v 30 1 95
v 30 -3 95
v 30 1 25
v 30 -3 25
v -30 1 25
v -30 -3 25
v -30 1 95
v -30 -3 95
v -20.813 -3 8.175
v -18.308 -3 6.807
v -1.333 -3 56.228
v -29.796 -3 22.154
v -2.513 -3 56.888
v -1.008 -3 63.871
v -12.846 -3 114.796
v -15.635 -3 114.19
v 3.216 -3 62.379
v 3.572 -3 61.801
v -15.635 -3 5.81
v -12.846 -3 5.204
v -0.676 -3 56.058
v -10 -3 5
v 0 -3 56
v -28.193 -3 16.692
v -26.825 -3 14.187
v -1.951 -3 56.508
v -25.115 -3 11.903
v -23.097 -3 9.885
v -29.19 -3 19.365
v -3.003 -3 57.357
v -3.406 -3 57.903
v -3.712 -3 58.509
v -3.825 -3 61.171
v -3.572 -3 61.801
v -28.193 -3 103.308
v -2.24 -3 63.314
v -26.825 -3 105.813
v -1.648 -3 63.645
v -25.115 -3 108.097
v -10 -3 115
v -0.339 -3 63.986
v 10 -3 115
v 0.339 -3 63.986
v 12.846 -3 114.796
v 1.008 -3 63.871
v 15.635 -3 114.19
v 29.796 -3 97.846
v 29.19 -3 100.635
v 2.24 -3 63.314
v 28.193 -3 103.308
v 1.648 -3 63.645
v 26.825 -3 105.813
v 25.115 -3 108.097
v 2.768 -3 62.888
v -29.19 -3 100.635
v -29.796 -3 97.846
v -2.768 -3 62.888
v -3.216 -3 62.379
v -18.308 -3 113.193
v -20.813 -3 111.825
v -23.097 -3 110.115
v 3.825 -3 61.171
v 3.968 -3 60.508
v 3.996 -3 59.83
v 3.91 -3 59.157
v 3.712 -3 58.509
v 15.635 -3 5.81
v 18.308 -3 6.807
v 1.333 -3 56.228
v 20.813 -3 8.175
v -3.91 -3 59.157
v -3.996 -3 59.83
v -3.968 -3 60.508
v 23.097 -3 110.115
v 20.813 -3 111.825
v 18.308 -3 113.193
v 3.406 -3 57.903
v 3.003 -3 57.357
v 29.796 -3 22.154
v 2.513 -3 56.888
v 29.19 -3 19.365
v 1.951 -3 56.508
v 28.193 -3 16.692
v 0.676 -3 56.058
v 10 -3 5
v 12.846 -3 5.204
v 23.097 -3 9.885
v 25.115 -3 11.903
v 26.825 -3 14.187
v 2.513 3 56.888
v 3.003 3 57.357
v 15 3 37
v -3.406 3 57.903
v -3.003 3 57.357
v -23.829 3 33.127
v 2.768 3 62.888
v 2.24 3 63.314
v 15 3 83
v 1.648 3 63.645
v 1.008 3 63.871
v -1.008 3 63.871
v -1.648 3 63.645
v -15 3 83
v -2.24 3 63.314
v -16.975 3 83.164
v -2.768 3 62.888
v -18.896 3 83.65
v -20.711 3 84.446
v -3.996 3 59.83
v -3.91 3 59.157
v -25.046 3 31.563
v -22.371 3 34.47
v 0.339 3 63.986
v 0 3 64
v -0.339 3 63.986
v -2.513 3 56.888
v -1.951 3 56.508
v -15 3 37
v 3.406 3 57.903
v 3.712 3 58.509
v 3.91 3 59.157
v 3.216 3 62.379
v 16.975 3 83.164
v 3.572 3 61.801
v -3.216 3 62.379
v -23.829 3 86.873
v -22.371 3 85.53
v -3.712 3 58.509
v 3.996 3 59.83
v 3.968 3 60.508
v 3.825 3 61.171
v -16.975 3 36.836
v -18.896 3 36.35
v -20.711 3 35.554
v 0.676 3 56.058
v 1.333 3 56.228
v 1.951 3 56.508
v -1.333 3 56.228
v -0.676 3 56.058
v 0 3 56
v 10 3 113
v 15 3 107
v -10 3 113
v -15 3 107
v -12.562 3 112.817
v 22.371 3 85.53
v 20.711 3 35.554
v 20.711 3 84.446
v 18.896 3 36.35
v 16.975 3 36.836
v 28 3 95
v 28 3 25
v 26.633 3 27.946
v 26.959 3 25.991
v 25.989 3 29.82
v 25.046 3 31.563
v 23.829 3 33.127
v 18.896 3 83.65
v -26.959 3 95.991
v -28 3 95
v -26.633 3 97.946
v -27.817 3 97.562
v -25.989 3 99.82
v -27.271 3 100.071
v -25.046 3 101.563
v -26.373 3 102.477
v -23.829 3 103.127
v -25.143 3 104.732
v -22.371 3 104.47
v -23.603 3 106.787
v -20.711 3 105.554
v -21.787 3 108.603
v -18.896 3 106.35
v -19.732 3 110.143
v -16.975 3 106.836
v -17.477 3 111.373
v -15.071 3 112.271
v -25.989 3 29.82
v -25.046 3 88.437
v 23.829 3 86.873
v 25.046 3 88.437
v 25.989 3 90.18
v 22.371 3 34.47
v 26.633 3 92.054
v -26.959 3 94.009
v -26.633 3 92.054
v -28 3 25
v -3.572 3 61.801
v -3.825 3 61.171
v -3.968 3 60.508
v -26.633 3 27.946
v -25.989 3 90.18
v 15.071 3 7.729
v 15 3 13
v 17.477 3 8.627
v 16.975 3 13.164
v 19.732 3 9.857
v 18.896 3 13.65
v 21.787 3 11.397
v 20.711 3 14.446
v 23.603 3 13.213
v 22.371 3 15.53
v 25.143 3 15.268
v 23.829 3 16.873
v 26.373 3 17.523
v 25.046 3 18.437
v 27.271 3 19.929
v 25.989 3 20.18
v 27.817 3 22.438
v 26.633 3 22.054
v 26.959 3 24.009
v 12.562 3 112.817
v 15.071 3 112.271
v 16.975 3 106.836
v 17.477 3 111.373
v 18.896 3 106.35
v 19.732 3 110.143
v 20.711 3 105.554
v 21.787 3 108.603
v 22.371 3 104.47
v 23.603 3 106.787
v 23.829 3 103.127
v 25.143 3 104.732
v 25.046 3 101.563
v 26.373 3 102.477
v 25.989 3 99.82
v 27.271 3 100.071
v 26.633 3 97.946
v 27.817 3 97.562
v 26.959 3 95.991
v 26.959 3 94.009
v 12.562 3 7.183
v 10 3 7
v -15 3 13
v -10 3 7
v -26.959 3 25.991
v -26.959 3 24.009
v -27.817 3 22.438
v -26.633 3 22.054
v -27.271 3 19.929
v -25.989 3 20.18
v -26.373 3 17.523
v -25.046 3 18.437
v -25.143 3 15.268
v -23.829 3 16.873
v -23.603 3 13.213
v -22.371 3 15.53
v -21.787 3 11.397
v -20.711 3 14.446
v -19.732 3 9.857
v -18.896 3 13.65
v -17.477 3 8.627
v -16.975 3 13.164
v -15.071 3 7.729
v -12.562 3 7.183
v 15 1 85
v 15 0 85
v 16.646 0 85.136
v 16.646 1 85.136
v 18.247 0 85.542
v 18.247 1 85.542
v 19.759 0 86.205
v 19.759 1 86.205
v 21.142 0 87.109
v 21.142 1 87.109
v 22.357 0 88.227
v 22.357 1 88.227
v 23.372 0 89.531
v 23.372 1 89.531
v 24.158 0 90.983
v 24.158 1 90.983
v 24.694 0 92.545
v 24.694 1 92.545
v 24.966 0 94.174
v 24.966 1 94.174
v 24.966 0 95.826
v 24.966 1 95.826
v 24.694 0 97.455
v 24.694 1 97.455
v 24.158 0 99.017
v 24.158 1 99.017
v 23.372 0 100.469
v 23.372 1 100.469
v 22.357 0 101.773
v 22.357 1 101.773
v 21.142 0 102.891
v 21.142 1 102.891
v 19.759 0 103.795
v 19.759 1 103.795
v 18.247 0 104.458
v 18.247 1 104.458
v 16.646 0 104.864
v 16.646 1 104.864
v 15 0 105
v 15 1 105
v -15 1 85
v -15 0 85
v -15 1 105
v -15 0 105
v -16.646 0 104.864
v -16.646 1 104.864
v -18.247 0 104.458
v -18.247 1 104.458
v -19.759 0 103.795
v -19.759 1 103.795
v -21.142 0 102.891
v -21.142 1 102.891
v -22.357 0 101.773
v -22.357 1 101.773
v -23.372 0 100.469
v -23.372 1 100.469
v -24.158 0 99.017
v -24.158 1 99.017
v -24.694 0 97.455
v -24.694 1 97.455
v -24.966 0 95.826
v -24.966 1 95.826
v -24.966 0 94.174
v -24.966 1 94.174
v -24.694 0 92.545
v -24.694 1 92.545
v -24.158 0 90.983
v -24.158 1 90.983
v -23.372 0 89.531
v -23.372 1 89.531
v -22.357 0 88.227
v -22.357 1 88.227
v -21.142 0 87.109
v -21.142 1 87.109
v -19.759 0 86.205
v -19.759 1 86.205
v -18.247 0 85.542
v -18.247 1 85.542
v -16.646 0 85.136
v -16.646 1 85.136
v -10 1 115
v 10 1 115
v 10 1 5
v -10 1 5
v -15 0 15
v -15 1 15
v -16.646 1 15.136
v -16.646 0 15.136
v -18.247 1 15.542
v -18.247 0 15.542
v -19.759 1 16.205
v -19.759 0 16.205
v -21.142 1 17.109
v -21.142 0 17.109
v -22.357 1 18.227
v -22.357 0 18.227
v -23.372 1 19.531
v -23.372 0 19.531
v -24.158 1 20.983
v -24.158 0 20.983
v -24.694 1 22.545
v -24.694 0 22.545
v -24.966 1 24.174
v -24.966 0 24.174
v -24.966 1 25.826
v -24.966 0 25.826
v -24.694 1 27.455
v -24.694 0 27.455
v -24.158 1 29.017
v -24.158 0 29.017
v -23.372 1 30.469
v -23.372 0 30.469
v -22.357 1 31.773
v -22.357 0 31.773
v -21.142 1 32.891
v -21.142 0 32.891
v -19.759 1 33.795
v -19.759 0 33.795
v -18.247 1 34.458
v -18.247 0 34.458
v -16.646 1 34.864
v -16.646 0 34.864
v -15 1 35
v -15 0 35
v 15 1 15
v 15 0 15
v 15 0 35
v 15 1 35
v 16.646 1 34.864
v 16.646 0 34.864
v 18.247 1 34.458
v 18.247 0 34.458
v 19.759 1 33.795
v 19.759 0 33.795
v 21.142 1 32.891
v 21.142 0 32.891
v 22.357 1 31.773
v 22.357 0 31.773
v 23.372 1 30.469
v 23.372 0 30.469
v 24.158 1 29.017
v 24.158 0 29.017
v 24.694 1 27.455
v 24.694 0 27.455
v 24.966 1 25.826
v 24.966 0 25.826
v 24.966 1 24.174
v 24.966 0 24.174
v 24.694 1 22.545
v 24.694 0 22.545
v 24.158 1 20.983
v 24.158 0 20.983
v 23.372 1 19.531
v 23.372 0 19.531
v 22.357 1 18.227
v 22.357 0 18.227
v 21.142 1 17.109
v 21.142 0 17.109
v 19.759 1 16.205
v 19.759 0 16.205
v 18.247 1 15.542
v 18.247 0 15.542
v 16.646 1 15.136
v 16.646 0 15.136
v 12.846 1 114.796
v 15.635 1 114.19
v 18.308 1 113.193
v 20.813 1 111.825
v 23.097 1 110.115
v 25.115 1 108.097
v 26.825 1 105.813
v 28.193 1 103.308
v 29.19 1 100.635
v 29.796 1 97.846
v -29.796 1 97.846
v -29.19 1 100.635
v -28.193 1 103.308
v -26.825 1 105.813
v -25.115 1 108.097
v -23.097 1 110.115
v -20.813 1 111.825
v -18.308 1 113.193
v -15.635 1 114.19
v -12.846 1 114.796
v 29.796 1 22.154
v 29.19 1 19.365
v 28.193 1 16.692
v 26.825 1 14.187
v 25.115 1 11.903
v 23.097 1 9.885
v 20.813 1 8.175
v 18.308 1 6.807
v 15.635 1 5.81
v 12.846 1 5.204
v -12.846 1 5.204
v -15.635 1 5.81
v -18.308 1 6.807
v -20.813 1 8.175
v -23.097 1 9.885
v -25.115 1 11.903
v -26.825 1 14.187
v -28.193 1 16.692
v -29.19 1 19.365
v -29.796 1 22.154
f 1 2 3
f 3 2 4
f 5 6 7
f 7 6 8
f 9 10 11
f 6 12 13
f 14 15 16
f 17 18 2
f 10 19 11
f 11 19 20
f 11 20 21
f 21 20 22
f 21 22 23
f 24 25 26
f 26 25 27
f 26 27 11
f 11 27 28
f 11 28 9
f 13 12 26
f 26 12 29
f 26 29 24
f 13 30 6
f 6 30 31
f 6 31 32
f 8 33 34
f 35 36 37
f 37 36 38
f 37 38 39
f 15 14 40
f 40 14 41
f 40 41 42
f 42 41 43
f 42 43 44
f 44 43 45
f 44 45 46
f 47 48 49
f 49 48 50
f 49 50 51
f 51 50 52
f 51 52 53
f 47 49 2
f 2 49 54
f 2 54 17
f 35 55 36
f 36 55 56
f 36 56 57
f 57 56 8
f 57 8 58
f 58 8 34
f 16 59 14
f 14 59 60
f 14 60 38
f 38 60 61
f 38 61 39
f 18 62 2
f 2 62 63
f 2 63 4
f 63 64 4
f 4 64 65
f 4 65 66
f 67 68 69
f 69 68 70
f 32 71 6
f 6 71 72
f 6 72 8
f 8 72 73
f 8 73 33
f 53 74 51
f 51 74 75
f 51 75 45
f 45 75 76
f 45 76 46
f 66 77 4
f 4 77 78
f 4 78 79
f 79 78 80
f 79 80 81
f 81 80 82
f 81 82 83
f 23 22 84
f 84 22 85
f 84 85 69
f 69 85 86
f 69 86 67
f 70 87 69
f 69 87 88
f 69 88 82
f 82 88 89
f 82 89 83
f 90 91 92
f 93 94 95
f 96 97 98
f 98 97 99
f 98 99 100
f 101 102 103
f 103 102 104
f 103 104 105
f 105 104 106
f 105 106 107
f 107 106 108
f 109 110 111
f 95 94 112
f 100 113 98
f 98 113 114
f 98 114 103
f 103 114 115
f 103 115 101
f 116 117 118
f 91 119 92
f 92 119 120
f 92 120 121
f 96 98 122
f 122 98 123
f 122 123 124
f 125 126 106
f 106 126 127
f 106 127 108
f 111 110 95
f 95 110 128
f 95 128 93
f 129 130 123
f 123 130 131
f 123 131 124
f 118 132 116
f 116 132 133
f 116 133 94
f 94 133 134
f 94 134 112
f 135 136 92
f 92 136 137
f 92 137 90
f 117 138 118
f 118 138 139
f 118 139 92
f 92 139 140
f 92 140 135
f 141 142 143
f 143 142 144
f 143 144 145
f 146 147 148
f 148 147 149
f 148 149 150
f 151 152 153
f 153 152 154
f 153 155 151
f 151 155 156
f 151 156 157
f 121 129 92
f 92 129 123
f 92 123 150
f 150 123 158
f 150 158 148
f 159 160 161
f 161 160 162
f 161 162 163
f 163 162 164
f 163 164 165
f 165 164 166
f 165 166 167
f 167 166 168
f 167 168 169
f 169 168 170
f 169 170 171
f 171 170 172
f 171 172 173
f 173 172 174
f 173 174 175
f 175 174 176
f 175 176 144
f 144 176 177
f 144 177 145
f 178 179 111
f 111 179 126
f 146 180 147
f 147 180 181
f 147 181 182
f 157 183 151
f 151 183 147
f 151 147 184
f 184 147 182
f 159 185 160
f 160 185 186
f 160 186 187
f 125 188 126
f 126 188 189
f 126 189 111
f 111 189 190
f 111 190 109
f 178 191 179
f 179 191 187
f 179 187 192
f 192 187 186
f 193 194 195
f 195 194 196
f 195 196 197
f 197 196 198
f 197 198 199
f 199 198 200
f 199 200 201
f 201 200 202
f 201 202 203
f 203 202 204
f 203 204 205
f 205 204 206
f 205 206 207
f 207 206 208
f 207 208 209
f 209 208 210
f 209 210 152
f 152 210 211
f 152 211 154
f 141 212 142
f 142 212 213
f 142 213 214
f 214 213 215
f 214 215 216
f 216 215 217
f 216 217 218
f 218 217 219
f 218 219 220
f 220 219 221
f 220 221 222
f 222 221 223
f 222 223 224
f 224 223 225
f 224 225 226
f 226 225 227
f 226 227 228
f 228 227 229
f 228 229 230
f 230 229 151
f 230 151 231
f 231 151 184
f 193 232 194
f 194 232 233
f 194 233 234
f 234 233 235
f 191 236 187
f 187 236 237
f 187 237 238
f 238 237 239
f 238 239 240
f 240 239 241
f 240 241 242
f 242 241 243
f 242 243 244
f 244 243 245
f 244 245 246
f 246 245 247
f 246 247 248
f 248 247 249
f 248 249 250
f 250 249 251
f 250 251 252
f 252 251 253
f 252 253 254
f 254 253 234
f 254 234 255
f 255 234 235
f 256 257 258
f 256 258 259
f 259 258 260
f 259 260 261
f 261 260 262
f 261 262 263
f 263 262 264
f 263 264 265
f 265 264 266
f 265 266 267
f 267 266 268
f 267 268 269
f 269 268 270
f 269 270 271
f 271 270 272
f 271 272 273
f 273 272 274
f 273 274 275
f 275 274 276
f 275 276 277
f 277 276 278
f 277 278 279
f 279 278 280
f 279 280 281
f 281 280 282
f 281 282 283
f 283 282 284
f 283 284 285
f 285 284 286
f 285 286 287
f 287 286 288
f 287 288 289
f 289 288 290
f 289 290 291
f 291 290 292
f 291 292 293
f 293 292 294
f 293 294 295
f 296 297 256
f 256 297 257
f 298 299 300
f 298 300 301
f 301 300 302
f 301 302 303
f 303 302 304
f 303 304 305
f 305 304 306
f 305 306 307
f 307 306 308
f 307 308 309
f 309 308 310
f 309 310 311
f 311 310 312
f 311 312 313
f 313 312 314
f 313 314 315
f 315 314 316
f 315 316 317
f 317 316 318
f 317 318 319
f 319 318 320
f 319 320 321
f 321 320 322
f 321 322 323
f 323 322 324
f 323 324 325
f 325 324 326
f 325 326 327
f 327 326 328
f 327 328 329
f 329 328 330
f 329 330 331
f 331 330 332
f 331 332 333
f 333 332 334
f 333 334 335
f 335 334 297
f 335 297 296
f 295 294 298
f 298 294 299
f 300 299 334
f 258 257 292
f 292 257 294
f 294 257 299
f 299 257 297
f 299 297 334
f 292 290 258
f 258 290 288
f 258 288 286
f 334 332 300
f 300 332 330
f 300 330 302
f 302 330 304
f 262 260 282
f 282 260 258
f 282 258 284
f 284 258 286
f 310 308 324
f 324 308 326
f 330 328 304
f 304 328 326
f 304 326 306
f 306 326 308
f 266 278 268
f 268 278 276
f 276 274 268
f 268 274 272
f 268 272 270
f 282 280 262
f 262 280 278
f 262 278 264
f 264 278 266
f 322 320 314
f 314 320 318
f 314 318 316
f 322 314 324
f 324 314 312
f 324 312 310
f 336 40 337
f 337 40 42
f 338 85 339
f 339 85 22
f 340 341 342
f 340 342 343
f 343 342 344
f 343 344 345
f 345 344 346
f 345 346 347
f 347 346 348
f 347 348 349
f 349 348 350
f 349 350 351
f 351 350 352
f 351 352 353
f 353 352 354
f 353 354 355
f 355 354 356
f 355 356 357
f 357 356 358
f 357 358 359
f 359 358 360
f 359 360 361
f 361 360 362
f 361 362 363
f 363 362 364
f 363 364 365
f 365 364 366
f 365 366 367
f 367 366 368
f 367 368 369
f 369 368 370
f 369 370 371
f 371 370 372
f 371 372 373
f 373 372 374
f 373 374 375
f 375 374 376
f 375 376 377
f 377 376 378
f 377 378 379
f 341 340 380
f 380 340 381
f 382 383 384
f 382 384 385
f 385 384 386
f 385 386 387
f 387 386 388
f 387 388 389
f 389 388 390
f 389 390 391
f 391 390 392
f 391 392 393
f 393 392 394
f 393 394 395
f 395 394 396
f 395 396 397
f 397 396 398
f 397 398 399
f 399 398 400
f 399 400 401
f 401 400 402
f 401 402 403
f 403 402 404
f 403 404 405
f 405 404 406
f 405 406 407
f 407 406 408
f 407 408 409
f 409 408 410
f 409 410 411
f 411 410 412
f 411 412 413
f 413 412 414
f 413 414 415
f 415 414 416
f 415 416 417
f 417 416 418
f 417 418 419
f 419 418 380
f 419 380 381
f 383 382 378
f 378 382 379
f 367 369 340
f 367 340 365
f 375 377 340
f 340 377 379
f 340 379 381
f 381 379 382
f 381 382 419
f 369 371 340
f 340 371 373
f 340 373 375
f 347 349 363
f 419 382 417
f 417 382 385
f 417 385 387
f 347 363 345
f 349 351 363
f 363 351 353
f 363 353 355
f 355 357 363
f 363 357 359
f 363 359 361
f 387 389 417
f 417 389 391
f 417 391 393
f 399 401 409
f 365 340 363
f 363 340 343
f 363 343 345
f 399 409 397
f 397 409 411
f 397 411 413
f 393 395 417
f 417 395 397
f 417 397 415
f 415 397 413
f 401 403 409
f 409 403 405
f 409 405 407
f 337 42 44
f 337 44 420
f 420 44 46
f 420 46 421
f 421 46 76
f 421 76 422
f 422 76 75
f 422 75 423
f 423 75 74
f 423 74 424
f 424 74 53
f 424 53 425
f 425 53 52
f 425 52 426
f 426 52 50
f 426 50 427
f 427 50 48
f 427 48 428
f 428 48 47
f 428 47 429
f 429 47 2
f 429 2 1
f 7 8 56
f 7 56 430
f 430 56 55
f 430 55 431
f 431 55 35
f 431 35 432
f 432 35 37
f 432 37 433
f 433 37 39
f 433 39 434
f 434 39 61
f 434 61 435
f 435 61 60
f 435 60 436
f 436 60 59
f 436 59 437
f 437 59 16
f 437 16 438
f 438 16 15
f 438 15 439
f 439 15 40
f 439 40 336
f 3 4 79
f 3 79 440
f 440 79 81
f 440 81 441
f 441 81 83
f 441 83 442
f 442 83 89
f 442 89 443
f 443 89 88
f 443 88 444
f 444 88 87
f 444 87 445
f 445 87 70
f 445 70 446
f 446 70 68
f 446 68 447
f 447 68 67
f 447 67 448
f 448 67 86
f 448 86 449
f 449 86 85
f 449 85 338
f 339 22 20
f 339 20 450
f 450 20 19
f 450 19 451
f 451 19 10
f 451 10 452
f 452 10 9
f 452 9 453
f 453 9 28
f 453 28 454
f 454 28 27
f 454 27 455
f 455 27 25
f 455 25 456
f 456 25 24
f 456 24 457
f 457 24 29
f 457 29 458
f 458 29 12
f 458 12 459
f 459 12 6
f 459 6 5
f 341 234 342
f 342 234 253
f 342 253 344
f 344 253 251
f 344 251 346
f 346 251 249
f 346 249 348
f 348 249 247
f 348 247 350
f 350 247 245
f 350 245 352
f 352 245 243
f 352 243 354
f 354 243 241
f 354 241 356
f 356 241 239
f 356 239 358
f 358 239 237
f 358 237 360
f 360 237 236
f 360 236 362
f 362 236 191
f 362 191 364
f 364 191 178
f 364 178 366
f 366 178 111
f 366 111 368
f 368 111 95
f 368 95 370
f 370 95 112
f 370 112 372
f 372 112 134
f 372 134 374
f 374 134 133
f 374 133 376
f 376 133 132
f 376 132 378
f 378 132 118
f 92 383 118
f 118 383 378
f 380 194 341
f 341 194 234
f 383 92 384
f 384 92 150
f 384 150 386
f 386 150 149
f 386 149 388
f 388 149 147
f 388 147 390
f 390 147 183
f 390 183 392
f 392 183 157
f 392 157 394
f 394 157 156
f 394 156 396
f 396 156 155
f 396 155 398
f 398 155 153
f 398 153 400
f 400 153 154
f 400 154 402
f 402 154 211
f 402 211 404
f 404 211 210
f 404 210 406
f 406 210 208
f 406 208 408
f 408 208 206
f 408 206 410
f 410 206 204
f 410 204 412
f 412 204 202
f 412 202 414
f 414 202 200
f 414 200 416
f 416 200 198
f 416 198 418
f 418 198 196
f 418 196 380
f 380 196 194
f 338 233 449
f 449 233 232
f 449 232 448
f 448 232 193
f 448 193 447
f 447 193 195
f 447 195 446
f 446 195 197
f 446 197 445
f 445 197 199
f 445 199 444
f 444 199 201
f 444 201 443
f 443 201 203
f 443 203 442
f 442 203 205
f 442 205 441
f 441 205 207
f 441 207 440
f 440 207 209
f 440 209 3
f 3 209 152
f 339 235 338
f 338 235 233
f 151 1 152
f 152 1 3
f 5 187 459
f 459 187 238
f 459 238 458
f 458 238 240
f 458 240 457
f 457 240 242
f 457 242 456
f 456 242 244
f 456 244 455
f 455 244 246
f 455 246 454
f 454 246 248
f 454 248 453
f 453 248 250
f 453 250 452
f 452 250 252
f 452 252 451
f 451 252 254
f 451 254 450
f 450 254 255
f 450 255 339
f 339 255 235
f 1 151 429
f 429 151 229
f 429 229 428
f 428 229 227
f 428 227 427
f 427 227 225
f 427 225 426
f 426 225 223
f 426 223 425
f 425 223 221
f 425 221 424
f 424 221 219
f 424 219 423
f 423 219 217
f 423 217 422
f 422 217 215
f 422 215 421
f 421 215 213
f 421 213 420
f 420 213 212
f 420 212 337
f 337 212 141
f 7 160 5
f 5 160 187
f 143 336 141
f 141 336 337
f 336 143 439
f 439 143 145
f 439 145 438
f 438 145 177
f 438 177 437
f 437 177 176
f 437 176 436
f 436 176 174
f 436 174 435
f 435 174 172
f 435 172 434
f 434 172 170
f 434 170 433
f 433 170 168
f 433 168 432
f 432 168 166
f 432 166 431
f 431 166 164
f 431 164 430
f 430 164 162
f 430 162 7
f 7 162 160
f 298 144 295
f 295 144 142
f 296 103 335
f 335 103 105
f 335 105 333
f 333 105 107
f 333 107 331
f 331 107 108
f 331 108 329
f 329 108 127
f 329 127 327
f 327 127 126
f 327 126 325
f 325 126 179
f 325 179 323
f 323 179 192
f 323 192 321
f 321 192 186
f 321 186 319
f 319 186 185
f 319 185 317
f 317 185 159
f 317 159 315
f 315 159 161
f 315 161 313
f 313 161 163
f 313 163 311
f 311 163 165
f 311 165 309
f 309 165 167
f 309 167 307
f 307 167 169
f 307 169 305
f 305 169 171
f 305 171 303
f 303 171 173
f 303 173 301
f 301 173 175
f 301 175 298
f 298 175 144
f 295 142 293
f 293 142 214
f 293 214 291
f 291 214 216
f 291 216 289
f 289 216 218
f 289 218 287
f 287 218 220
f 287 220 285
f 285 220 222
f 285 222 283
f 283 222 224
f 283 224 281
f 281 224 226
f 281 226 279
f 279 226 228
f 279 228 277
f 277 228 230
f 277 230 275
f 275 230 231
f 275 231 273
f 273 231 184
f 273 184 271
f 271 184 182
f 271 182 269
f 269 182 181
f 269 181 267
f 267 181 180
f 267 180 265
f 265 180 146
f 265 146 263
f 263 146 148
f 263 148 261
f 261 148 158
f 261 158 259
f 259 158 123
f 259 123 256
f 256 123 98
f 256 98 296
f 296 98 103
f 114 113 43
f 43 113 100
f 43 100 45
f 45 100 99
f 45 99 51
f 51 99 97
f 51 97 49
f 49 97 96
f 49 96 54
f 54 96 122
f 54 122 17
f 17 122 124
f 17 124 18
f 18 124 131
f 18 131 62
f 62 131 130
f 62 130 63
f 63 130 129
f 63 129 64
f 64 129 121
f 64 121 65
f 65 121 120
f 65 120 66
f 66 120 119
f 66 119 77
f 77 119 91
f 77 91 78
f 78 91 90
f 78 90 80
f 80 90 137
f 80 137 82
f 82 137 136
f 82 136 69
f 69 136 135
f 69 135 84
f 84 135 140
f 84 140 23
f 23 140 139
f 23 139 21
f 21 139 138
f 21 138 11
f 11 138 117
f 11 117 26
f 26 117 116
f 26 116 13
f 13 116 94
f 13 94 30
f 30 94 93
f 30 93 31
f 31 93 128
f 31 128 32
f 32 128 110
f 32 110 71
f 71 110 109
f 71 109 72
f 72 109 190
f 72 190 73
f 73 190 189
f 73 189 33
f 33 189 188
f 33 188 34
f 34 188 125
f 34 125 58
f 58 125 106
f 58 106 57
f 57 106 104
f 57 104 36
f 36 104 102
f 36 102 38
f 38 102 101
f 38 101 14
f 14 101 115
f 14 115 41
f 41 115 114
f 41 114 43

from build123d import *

# Parameters (mm, degrees)
SKETCH1_W           = 60
SKETCH1_H           = 70
BOSS_EXTRUDE1_DEPTH = 3
SKETCH2_W           = 60
SKETCH2_H           = 140
BOSS_EXTRUDE2_DEPTH = 3
SKETCH4_W           = 60
SKETCH4_H           = 5
CUT_EXTRUDE1_DEPTH  = 10
CHAMFER2_SIZE       = 15
SKETCH5_R           = 4
CUT_EXTRUDE2_DEPTH  = 3
FILLET3_R           = 20
CHAMFER3_SIZE       = 1
SKETCH6_W           = 103.197432935
SKETCH6_H           = 87.20183083
CUT_EXTRUDE3_DEPTH  = 100
SKETCH7_W           = 60
SKETCH7_H           = 55
BOSS_EXTRUDE3_DEPTH = 3
SKETCH8_W           = 60
SKETCH8_H           = 55
BOSS_EXTRUDE4_DEPTH = 3
FILLET4_R           = 20
CHAMFER4_SIZE       = 2
SKETCH9_R           = 4
CUT_EXTRUDE4_DEPTH  = 10


with BuildPart() as part:
    # Sketch1 → Boss-Extrude1 (new body)
    with BuildSketch(Plane(origin=(0, 0, 0), x_dir=(1, 0, 0), z_dir=(0, 1, 0))):
        with Locations((0, -35)):
            Rectangle(SKETCH1_W, SKETCH1_H)
        with BuildLine():
            Line((-15, -35), (15, -35))
            ThreePointArc((15, -35), (25, -25), (15, -15))
            Line((15, -15), (-15, -15))
            ThreePointArc((-15, -15), (-25, -25), (-15, -35))
        make_face(mode=Mode.SUBTRACT)
    boss_extrude1 = extrude(amount=BOSS_EXTRUDE1_DEPTH)

    # Mirror1: Boss-Extrude1 across plane
    add(boss_extrude1.mirror(Plane(origin=(-30, 3, 70), x_dir=(1, 0, 0), z_dir=(0, 0, -1))))

    # Sketch2 → Boss-Extrude2 (add)
    with BuildSketch(Plane(origin=(0, 0, 0), x_dir=(-1, 0, 0), z_dir=(0, -1, 0))):
        with Locations((0, -70)):
            Rectangle(SKETCH2_W, SKETCH2_H)
    boss_extrude2 = extrude(amount=BOSS_EXTRUDE2_DEPTH)

    # Sketch4 → Cut-Extrude1 (cut)
    with BuildSketch(Plane(origin=(0, 3, 0), x_dir=(1, 0, 0), z_dir=(0, 1, 0))):
        with Locations((0, -2.5)):
            Rectangle(SKETCH4_W, SKETCH4_H)
        with Locations((0, -137.5)):
            Rectangle(SKETCH4_W, SKETCH4_H)
    cut_extrude1 = extrude(amount=-CUT_EXTRUDE1_DEPTH, mode=Mode.SUBTRACT)

    # Chamfer2
    chamfer2_edges = [part.edges().sort_by_distance(p)[0] for p in [
        (30, 0, 5),
        (-30, 0, 5),
        (30, 0, 135),
        (-30, 0, 135),
    ]]
    chamfer(chamfer2_edges, length=CHAMFER2_SIZE)

    # Sketch5 → Cut-Extrude2 (cut)
    with BuildSketch(Plane.XZ.offset(3)):
        with Locations((0, 70)):
            Circle(SKETCH5_R)
    extrude(amount=-CUT_EXTRUDE2_DEPTH, mode=Mode.SUBTRACT)

    # Fillet3
    fillet3_edges = [part.edges().sort_by_distance(p)[0] for p in [
        (-30, 0, 20),
        (-30, 0, 120),
        (15, 0, 135),
        (-15, 0, 135),
        (30, 0, 20),
        (30, 0, 120),
        (-15, 0, 5),
        (15, 0, 5),
    ]]
    fillet(fillet3_edges, radius=FILLET3_R)

    # Chamfer3
    chamfer3_edges = [part.edges().sort_by_distance(p)[0] for p in [
        (25, 3, 25),
        (0, 3, 15),
        (-25, 3, 25),
        (0, 3, 35),
        (30, 3, 70),
        (-30, 3, 70),
        (-22.5, 3, 127.5),
        (0, 3, 135),
        (22.5, 3, 127.5),
        (22.5, 3, 12.5),
        (0, 3, 5),
        (-22.5, 3, 12.5),
        (-14.3693974, 3, 133.47759065),
        (-28.47759065, 3, 119.3693974),
        (14.3693974, 3, 133.47759065),
        (28.47759065, 3, 119.3693974),
        (-28.47759065, 3, 20.6306026),
        (-14.3693974, 3, 6.52240935),
        (14.3693974, 3, 6.52240935),
        (28.47759065, 3, 20.6306026),
        (25, 3, 115),
        (0, 3, 125),
        (-25, 3, 115),
        (0, 3, 105),
    ]]
    chamfer(chamfer3_edges, length=CHAMFER3_SIZE)

    # Sketch6 → Cut-Extrude3 (cut)
    with BuildSketch(Plane(origin=(0, 3, 0), x_dir=(1, 0, 0), z_dir=(0, 1, 0))):
        with Locations((0.064498395, -103.600915415)):
            Rectangle(SKETCH6_W, SKETCH6_H)
    cut_extrude3 = extrude(amount=-CUT_EXTRUDE3_DEPTH, mode=Mode.SUBTRACT)

    # Mirror4: Boss-Extrude1, Boss-Extrude2, Cut-Extrude1, Cut-Extrude3 across plane
    add(boss_extrude1.mirror(Plane(origin=(-51.534218072, -97, 60), x_dir=(1, 0, 0), z_dir=(0, 0, -1))))
    add(boss_extrude2.mirror(Plane(origin=(-51.534218072, -97, 60), x_dir=(1, 0, 0), z_dir=(0, 0, -1))))
    add(cut_extrude1.mirror(Plane(origin=(-51.534218072, -97, 60), x_dir=(1, 0, 0), z_dir=(0, 0, -1))), mode=Mode.SUBTRACT)
    add(cut_extrude3.mirror(Plane(origin=(-51.534218072, -97, 60), x_dir=(1, 0, 0), z_dir=(0, 0, -1))), mode=Mode.SUBTRACT)

    # Sketch7 → Boss-Extrude3 (add)
    with BuildSketch(Plane(origin=(0, 3, 0), x_dir=(1, 0, 0), z_dir=(0, 1, 0))):
        with Locations((0, -32.5)):
            Rectangle(SKETCH7_W, SKETCH7_H)
        with BuildLine():
            Line((-15, -35), (15, -35))
            ThreePointArc((15, -35), (25, -25), (15, -15))
            Line((15, -15), (-15, -15))
            ThreePointArc((-15, -15), (-25, -25), (-15, -35))
        make_face(mode=Mode.SUBTRACT)
    extrude(amount=-BOSS_EXTRUDE3_DEPTH)

    # Sketch8 → Boss-Extrude4 (add)
    with BuildSketch(Plane(origin=(0, 0, 0), x_dir=(-1, 0, 0), z_dir=(0, -1, 0))):
        with Locations((0, -32.5)):
            Rectangle(SKETCH8_W, SKETCH8_H)
    extrude(amount=BOSS_EXTRUDE4_DEPTH)

    # Fillet4
    fillet4_edges = [part.edges().sort_by_distance(p)[0] for p in [
        (30, 0, 115),
        (-30, 0, 115),
        (-30, 0, 5),
        (30, 0, 5),
    ]]
    fillet(fillet4_edges, radius=FILLET4_R)

    # Chamfer4
    chamfer4_edges = [part.edges().sort_by_distance(p)[0] for p in [
        (25, 3, 95),
        (0, 3, 105),
        (-25, 3, 95),
        (0, 3, 85),
        (-25, 3, 25),
        (0, 3, 15),
        (25, 3, 25),
        (0, 3, 35),
        (0, 3, 115),
        (30, 3, 60),
        (0, 3, 5),
        (-30, 3, 60),
        (-24.142135624, 3, 10.857864376),
        (24.142135624, 3, 10.857864376),
        (-24.142135624, 3, 109.142135624),
        (24.142135624, 3, 109.142135624),
    ]]
    chamfer(chamfer4_edges, length=CHAMFER4_SIZE)

    # Sketch9 → Cut-Extrude4 (cut)
    with BuildSketch(Plane(origin=(0, -3, 0), x_dir=(-1, 0, 0), z_dir=(0, -1, 0))):
        with Locations((0, -60)):
            Circle(SKETCH9_R)
    extrude(amount=-CUT_EXTRUDE4_DEPTH, mode=Mode.SUBTRACT)


solid = part.part
